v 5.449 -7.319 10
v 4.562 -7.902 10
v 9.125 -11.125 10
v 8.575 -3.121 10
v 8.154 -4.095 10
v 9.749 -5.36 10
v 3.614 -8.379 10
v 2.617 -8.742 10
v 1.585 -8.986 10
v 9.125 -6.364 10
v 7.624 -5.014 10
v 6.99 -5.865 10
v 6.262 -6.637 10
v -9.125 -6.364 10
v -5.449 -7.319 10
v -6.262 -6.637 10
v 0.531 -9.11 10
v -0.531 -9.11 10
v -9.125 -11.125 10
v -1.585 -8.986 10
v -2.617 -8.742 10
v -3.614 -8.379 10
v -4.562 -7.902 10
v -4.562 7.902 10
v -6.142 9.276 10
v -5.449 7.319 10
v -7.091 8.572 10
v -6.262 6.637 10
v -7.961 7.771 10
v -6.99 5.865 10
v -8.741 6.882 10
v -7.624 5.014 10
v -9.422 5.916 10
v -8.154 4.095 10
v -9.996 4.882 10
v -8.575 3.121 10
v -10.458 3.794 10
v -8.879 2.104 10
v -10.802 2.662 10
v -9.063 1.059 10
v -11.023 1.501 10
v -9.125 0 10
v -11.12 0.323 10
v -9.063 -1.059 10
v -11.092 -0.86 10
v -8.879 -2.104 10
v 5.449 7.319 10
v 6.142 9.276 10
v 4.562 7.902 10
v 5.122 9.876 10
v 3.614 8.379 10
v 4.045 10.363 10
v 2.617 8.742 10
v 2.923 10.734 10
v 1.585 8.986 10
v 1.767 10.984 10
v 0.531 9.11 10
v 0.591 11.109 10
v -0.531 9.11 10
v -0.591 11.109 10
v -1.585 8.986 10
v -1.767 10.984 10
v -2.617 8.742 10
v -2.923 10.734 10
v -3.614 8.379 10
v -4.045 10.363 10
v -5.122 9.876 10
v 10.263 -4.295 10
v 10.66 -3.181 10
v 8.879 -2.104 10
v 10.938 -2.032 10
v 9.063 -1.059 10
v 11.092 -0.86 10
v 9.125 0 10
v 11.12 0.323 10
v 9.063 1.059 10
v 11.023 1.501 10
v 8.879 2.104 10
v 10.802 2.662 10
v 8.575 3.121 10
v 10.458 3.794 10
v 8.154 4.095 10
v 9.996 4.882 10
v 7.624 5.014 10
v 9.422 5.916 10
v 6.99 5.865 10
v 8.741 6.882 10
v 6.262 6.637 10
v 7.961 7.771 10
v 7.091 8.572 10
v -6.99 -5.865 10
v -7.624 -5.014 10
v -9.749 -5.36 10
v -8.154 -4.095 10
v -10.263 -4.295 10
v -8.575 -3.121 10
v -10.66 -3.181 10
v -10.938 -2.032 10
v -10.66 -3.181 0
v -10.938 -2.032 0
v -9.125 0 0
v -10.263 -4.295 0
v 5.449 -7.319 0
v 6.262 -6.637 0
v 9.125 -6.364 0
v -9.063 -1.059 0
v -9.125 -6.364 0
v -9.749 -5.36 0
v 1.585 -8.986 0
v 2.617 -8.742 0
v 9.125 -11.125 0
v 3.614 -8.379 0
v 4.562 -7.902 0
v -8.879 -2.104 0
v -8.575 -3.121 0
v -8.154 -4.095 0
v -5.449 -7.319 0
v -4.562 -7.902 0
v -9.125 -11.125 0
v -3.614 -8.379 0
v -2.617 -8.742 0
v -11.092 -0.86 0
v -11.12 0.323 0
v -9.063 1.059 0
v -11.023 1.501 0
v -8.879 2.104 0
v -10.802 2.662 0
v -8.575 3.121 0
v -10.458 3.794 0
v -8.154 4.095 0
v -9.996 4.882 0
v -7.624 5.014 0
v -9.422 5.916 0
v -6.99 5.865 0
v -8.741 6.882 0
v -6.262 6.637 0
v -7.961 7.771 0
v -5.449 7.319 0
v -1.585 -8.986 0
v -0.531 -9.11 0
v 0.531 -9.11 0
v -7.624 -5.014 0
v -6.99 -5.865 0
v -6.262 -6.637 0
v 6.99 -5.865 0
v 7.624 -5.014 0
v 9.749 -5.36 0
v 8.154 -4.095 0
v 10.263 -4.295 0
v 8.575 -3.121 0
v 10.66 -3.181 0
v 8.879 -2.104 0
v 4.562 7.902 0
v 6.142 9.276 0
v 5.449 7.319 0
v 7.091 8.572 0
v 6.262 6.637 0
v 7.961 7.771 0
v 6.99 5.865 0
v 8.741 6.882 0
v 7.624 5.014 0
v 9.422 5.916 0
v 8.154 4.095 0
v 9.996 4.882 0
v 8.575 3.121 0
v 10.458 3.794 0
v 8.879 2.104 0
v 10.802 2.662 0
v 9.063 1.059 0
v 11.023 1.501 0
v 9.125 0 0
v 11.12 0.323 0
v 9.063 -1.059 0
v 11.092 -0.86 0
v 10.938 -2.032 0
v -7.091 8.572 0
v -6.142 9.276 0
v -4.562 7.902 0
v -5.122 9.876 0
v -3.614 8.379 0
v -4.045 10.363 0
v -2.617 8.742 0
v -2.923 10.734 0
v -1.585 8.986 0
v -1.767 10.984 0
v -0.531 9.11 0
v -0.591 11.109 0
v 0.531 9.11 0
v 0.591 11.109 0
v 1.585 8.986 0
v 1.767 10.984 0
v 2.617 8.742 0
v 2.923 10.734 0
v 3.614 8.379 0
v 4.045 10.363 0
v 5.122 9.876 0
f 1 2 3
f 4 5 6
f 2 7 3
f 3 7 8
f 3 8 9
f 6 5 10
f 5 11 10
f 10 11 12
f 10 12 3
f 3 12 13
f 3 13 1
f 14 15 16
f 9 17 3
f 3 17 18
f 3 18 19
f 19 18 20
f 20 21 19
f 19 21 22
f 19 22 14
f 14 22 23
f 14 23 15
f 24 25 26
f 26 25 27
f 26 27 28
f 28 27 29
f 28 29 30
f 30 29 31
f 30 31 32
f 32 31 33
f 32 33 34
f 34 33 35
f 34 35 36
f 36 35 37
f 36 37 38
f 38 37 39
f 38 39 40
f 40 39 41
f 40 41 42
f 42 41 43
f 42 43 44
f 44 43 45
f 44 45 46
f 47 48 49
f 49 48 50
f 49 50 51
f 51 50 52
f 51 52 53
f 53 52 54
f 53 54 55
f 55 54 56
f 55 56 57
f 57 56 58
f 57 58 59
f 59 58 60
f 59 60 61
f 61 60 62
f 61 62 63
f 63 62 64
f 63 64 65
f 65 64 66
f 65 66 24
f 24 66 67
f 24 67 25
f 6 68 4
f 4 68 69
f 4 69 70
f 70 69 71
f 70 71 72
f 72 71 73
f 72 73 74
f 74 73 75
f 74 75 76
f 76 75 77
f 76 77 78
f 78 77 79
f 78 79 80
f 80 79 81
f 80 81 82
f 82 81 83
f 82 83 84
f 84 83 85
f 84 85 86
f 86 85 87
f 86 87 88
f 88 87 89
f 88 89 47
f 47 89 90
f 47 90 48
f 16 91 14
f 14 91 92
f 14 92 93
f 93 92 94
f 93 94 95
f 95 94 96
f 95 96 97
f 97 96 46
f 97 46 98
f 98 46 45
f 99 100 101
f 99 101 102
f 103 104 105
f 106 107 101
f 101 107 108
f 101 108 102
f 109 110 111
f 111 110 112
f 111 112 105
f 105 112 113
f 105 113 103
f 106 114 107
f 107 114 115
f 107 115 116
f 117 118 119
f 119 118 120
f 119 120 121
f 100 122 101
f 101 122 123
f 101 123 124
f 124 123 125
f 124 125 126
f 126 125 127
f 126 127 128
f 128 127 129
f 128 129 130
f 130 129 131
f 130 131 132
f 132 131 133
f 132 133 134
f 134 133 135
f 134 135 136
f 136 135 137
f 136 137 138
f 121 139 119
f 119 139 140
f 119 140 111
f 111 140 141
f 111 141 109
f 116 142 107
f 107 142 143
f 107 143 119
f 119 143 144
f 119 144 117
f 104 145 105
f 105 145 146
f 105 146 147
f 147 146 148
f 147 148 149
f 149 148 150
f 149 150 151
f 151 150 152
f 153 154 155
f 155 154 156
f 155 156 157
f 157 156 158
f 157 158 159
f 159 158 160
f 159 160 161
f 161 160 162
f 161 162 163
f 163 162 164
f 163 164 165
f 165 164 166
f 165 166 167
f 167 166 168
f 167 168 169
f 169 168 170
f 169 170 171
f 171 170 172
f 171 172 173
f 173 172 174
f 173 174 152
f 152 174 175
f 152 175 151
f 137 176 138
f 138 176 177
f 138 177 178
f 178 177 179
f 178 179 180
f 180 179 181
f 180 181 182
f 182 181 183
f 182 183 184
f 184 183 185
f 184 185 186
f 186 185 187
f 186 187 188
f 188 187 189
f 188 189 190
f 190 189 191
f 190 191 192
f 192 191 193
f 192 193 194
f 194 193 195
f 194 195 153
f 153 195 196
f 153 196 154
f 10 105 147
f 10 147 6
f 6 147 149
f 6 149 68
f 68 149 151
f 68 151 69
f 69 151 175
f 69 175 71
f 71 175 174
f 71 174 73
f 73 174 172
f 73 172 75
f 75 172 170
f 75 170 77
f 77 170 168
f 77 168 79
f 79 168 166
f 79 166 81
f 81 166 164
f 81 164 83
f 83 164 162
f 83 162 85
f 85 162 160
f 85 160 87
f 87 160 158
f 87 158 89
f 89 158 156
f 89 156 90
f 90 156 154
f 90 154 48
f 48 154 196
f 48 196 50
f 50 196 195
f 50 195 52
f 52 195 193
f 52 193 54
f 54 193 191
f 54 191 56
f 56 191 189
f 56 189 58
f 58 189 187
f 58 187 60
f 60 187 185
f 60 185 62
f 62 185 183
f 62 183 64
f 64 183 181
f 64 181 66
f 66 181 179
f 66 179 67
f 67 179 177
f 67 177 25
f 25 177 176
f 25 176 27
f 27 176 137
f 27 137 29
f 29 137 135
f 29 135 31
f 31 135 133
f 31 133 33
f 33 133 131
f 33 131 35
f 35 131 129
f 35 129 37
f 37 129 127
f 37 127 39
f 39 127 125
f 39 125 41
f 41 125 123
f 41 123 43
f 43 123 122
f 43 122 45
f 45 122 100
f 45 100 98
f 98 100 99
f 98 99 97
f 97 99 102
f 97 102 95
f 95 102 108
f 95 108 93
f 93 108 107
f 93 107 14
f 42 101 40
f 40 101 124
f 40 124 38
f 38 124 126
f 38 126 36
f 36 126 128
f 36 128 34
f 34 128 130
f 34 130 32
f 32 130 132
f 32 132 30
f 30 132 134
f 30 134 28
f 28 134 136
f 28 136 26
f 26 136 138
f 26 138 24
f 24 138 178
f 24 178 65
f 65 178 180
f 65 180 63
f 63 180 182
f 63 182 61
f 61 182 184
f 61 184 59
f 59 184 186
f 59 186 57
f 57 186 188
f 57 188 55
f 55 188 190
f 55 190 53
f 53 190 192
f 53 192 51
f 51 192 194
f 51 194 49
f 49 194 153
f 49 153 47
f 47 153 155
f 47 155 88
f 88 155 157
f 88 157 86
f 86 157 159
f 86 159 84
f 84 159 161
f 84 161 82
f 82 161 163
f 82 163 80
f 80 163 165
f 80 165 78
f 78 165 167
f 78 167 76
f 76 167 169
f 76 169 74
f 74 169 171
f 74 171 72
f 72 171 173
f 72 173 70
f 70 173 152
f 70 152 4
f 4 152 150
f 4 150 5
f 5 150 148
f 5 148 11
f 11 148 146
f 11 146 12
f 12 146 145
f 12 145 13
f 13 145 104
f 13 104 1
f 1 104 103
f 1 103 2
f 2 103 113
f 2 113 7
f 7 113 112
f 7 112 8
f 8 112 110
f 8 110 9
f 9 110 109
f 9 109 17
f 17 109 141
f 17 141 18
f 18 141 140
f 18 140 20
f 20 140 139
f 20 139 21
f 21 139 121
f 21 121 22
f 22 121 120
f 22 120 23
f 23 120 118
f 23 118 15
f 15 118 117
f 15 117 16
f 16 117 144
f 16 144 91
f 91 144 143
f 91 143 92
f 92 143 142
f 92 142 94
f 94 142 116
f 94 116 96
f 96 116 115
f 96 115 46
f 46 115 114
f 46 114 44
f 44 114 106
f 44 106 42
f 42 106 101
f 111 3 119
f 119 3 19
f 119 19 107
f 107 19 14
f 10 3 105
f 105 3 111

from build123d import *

# Parameters (mm, degrees)
SKETCH1_R           = 11.125
SKETCH1_R_2         = 9.125
BOSS_EXTRUDE1_DEPTH = 10
BOSS_EXTRUDE2_START = -10
BOSS_EXTRUDE2_DEPTH = 10


with BuildPart() as part:
    # Sketch1 → Boss-Extrude1 (new body)
    with BuildSketch(Plane.XY):
        Circle(SKETCH1_R)
        Circle(SKETCH1_R_2, mode=Mode.SUBTRACT)
    extrude(amount=BOSS_EXTRUDE1_DEPTH)

    # Sketch2 → Boss-Extrude2 (add)
    with BuildSketch(Plane.XY.offset(10).offset(BOSS_EXTRUDE2_START)):
        with BuildLine():
            Line((-9.125, -9.125), (-6.363961031, -9.125))
            ThreePointArc((-6.363961031, -9.125), (-7.866562941, -7.866562941), (-9.125, -6.363961031))
            Line((-9.125, -6.363961031), (-9.125, -9.125))
        make_face()
        with BuildLine():
            Line((-9.125, -11.125), (0, -11.125))
            ThreePointArc((0, -11.125), (-3.335416016, -10.613228774), (-6.363961031, -9.125))
            Line((-6.363961031, -9.125), (-9.125, -9.125))
            Line((-9.125, -9.125), (-9.125, -11.125))
        make_face()
        with BuildLine():
            Line((0, -11.125), (9.125, -11.125))
            Line((9.125, -11.125), (9.125, -9.125))
            Line((9.125, -9.125), (6.363961031, -9.125))
            ThreePointArc((6.363961031, -9.125), (3.335416016, -10.613228774), (0, -11.125))
        make_face()
        with BuildLine():
            Line((6.363961031, -9.125), (9.125, -9.125))
            Line((9.125, -9.125), (9.125, -6.363961031))
            ThreePointArc((9.125, -6.363961031), (7.866562941, -7.866562941), (6.363961031, -9.125))
        make_face()
    extrude(amount=BOSS_EXTRUDE2_DEPTH)


solid = part.part
